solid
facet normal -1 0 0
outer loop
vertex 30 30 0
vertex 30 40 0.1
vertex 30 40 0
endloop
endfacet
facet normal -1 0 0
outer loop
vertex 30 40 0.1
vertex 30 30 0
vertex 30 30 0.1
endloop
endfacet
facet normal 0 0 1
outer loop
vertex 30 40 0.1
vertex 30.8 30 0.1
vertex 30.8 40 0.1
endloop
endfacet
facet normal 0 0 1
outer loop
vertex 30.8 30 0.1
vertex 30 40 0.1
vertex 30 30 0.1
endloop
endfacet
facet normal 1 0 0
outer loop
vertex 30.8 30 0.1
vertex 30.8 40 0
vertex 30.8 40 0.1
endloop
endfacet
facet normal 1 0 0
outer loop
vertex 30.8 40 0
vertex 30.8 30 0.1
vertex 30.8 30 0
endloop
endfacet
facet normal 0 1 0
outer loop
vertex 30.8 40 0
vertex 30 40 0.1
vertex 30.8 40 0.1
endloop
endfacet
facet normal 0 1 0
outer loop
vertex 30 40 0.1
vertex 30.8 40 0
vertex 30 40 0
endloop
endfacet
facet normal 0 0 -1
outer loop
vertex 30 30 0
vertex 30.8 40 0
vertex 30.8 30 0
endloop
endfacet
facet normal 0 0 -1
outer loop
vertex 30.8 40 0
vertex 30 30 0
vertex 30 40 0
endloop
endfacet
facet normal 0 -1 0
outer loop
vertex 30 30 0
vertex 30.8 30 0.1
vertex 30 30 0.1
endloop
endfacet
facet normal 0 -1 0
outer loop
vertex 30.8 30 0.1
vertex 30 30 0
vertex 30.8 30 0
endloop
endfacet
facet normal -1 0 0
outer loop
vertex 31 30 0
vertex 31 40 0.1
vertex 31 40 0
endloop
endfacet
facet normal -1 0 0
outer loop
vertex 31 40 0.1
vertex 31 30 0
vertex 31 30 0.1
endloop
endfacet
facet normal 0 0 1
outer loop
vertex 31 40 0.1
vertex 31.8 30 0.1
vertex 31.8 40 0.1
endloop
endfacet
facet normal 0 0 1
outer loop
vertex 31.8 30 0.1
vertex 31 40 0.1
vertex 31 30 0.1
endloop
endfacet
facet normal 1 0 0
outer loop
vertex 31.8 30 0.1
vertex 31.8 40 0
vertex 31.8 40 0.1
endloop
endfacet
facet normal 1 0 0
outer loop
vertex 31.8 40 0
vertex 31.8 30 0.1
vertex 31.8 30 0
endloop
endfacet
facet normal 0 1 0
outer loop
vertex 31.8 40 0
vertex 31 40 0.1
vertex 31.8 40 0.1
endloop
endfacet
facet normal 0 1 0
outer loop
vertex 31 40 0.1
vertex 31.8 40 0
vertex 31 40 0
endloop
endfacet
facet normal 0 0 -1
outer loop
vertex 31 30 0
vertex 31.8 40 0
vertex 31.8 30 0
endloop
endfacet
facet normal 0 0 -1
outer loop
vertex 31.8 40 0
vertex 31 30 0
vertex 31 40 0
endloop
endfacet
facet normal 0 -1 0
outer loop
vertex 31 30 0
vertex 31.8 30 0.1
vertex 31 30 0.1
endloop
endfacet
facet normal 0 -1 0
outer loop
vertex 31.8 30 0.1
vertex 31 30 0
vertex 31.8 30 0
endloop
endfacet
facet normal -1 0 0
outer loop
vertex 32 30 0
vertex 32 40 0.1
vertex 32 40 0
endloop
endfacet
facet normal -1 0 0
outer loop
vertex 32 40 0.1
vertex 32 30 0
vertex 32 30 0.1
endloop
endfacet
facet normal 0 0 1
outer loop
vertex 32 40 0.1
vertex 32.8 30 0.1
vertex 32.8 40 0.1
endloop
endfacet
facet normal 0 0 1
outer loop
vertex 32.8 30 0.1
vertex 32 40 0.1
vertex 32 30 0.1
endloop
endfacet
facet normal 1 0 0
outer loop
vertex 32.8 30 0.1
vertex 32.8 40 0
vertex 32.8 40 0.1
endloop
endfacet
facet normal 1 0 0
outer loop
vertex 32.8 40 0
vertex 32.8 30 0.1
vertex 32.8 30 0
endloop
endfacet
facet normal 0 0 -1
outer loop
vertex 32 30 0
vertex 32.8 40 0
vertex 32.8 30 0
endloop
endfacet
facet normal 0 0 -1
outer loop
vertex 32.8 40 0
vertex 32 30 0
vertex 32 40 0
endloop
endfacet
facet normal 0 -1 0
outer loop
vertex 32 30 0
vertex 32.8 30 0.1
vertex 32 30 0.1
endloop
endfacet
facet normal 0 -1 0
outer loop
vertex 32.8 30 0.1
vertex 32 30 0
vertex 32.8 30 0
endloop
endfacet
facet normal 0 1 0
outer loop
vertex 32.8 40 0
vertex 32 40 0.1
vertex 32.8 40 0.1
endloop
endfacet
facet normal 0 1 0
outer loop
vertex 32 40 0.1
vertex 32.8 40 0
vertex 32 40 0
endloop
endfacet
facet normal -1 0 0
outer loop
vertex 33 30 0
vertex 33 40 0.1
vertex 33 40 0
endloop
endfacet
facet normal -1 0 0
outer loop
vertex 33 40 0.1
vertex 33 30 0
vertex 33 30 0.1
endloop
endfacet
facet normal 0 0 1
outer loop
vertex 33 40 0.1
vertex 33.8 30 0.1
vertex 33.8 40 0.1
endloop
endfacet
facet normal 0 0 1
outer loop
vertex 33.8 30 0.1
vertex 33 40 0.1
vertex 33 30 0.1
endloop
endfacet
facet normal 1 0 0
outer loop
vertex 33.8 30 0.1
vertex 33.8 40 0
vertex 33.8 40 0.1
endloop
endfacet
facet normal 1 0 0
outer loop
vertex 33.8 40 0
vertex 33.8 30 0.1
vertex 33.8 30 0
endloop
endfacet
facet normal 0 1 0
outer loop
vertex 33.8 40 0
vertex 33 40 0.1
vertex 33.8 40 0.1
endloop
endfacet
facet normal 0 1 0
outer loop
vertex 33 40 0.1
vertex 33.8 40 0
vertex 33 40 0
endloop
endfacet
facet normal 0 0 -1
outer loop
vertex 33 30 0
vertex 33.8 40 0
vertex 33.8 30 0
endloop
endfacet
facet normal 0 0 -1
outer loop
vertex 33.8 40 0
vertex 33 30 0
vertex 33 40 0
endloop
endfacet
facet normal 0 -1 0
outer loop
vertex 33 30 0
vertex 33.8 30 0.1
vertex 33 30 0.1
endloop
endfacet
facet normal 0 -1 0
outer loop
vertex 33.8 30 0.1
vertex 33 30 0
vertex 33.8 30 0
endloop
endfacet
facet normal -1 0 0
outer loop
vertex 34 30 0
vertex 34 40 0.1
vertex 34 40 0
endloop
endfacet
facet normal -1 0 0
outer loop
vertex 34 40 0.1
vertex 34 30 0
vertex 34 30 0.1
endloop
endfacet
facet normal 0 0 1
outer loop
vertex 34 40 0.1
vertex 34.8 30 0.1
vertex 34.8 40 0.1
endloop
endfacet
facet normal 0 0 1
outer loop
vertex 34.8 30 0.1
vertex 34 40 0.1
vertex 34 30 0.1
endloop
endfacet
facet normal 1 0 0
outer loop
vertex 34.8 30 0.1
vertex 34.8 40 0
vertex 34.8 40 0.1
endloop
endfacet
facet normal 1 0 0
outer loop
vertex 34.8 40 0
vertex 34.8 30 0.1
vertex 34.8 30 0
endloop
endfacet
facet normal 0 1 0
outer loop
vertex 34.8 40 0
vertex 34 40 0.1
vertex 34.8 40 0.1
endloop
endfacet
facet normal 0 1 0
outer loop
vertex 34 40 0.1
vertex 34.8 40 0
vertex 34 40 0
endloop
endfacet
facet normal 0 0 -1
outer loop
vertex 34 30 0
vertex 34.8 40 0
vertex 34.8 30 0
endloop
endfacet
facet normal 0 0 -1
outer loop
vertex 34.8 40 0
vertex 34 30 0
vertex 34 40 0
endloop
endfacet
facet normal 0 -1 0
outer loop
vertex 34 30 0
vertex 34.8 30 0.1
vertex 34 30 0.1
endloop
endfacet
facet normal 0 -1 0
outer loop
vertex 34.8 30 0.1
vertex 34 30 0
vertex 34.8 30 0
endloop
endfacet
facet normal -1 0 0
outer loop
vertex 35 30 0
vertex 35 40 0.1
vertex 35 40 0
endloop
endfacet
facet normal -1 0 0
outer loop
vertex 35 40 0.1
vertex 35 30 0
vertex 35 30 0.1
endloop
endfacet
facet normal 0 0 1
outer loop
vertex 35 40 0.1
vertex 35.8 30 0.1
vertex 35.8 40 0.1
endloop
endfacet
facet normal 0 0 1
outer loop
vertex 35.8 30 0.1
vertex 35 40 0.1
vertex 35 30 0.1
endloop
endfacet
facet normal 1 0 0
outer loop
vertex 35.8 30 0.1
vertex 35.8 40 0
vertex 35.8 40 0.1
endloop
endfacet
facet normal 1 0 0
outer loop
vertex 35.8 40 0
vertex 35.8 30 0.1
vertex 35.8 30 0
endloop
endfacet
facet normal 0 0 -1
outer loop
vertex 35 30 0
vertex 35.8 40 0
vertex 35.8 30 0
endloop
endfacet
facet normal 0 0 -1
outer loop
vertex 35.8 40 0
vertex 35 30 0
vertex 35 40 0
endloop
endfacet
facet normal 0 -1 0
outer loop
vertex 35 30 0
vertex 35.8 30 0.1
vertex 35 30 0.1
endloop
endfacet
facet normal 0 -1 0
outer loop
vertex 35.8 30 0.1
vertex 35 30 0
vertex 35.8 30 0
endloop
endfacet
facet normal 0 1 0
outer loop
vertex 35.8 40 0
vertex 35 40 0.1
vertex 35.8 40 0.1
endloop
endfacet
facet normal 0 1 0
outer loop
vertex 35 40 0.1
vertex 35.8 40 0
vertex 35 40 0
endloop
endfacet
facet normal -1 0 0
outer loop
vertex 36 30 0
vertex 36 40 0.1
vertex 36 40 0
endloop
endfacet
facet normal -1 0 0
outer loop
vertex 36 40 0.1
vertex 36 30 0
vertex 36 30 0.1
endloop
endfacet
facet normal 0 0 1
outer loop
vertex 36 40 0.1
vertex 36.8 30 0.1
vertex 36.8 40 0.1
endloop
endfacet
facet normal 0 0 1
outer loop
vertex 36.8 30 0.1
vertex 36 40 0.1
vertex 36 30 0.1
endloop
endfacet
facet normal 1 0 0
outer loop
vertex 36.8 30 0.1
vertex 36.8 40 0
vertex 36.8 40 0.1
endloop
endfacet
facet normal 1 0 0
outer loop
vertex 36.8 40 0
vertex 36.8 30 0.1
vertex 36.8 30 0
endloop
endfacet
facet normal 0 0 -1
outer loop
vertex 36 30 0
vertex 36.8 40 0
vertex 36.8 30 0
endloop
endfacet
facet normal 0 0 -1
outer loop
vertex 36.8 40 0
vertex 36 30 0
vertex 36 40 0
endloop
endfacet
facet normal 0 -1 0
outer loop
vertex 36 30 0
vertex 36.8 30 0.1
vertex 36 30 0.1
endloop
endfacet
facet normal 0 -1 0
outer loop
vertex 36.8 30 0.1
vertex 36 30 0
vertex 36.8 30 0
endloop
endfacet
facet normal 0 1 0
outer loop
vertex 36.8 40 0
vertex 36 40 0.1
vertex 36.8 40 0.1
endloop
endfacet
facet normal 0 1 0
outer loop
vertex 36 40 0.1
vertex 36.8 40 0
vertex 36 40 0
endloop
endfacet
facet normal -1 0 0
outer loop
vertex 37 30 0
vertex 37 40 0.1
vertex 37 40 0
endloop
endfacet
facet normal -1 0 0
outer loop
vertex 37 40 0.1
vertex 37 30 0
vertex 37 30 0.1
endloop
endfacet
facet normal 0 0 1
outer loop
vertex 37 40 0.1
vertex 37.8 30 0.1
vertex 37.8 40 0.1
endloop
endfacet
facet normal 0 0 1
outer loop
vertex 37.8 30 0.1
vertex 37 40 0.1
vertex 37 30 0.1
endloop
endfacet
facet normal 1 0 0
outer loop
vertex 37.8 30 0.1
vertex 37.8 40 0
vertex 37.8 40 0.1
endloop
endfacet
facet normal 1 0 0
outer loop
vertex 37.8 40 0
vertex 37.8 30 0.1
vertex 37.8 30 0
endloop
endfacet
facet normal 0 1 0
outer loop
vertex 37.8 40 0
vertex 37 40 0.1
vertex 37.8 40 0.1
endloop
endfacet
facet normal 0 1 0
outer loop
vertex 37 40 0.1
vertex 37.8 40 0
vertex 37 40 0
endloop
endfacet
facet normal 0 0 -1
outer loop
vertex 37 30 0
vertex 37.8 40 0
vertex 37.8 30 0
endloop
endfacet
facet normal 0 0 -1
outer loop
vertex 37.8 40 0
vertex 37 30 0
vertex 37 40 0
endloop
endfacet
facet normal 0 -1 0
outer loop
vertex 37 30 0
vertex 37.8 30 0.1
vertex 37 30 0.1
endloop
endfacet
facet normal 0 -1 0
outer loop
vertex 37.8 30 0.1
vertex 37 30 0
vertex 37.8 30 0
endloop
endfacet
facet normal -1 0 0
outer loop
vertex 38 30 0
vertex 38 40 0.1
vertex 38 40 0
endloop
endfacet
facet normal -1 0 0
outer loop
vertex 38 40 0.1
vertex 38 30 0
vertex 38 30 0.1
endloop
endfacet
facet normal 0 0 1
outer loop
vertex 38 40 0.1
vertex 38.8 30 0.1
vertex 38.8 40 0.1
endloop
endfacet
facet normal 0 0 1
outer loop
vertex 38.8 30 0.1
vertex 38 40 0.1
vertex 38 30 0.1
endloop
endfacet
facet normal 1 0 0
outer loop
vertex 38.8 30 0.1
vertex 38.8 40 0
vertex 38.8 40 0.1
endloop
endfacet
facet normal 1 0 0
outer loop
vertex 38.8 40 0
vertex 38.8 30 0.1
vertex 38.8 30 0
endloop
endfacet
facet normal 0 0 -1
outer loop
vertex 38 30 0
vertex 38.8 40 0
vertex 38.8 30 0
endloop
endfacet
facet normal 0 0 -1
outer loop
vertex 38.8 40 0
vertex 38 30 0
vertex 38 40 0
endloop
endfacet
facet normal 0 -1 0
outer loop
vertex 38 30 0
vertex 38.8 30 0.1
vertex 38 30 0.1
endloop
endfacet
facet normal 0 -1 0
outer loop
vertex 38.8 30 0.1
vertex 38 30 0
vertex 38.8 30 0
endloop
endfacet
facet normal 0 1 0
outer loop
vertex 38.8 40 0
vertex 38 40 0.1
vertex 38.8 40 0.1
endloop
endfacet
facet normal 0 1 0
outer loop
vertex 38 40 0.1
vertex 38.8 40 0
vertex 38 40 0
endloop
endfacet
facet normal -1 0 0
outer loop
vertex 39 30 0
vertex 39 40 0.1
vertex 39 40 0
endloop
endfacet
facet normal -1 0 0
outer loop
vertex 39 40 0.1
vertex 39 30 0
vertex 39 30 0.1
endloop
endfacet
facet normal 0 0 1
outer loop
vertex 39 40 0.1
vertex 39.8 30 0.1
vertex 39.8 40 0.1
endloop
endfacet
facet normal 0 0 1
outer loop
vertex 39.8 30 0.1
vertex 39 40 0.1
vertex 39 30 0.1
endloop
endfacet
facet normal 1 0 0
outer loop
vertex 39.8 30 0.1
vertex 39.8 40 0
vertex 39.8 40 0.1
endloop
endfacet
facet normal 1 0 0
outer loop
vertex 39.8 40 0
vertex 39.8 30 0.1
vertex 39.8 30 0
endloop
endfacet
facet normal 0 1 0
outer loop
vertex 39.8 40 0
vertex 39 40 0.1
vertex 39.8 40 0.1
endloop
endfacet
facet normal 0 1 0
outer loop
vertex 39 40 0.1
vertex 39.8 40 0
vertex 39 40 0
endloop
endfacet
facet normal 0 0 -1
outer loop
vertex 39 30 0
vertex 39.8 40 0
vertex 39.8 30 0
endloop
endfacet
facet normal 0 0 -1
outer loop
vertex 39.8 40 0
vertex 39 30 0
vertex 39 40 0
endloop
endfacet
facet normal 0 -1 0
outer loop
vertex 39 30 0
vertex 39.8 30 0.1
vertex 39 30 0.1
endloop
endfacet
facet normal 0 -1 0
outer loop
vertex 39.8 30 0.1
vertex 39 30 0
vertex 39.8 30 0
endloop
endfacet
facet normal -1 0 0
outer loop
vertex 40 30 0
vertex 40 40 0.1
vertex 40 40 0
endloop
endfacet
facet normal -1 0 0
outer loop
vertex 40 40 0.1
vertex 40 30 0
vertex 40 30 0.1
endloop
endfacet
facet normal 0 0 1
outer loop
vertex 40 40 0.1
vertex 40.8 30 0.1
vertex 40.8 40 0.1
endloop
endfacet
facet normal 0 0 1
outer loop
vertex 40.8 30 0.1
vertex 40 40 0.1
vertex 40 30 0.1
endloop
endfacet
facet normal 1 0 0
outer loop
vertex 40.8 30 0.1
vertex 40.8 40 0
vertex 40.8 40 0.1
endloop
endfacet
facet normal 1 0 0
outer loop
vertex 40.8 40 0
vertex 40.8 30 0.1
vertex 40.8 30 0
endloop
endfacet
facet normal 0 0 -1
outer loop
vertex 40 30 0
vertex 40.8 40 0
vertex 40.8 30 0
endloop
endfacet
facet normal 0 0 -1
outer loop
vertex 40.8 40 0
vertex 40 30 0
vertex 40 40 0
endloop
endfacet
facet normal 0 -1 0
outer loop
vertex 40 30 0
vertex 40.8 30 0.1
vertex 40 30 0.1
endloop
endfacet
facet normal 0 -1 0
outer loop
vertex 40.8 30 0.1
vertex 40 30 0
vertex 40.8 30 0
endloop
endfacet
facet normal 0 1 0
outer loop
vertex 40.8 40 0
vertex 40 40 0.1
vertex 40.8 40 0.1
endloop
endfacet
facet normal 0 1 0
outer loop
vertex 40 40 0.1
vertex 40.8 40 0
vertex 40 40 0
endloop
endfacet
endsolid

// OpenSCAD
translate([10+20,10+20,0])
        for (i = [0 : 10]){
            translate([i,0,0])
                cube(size = [0.8,10,0.1]);
    }
